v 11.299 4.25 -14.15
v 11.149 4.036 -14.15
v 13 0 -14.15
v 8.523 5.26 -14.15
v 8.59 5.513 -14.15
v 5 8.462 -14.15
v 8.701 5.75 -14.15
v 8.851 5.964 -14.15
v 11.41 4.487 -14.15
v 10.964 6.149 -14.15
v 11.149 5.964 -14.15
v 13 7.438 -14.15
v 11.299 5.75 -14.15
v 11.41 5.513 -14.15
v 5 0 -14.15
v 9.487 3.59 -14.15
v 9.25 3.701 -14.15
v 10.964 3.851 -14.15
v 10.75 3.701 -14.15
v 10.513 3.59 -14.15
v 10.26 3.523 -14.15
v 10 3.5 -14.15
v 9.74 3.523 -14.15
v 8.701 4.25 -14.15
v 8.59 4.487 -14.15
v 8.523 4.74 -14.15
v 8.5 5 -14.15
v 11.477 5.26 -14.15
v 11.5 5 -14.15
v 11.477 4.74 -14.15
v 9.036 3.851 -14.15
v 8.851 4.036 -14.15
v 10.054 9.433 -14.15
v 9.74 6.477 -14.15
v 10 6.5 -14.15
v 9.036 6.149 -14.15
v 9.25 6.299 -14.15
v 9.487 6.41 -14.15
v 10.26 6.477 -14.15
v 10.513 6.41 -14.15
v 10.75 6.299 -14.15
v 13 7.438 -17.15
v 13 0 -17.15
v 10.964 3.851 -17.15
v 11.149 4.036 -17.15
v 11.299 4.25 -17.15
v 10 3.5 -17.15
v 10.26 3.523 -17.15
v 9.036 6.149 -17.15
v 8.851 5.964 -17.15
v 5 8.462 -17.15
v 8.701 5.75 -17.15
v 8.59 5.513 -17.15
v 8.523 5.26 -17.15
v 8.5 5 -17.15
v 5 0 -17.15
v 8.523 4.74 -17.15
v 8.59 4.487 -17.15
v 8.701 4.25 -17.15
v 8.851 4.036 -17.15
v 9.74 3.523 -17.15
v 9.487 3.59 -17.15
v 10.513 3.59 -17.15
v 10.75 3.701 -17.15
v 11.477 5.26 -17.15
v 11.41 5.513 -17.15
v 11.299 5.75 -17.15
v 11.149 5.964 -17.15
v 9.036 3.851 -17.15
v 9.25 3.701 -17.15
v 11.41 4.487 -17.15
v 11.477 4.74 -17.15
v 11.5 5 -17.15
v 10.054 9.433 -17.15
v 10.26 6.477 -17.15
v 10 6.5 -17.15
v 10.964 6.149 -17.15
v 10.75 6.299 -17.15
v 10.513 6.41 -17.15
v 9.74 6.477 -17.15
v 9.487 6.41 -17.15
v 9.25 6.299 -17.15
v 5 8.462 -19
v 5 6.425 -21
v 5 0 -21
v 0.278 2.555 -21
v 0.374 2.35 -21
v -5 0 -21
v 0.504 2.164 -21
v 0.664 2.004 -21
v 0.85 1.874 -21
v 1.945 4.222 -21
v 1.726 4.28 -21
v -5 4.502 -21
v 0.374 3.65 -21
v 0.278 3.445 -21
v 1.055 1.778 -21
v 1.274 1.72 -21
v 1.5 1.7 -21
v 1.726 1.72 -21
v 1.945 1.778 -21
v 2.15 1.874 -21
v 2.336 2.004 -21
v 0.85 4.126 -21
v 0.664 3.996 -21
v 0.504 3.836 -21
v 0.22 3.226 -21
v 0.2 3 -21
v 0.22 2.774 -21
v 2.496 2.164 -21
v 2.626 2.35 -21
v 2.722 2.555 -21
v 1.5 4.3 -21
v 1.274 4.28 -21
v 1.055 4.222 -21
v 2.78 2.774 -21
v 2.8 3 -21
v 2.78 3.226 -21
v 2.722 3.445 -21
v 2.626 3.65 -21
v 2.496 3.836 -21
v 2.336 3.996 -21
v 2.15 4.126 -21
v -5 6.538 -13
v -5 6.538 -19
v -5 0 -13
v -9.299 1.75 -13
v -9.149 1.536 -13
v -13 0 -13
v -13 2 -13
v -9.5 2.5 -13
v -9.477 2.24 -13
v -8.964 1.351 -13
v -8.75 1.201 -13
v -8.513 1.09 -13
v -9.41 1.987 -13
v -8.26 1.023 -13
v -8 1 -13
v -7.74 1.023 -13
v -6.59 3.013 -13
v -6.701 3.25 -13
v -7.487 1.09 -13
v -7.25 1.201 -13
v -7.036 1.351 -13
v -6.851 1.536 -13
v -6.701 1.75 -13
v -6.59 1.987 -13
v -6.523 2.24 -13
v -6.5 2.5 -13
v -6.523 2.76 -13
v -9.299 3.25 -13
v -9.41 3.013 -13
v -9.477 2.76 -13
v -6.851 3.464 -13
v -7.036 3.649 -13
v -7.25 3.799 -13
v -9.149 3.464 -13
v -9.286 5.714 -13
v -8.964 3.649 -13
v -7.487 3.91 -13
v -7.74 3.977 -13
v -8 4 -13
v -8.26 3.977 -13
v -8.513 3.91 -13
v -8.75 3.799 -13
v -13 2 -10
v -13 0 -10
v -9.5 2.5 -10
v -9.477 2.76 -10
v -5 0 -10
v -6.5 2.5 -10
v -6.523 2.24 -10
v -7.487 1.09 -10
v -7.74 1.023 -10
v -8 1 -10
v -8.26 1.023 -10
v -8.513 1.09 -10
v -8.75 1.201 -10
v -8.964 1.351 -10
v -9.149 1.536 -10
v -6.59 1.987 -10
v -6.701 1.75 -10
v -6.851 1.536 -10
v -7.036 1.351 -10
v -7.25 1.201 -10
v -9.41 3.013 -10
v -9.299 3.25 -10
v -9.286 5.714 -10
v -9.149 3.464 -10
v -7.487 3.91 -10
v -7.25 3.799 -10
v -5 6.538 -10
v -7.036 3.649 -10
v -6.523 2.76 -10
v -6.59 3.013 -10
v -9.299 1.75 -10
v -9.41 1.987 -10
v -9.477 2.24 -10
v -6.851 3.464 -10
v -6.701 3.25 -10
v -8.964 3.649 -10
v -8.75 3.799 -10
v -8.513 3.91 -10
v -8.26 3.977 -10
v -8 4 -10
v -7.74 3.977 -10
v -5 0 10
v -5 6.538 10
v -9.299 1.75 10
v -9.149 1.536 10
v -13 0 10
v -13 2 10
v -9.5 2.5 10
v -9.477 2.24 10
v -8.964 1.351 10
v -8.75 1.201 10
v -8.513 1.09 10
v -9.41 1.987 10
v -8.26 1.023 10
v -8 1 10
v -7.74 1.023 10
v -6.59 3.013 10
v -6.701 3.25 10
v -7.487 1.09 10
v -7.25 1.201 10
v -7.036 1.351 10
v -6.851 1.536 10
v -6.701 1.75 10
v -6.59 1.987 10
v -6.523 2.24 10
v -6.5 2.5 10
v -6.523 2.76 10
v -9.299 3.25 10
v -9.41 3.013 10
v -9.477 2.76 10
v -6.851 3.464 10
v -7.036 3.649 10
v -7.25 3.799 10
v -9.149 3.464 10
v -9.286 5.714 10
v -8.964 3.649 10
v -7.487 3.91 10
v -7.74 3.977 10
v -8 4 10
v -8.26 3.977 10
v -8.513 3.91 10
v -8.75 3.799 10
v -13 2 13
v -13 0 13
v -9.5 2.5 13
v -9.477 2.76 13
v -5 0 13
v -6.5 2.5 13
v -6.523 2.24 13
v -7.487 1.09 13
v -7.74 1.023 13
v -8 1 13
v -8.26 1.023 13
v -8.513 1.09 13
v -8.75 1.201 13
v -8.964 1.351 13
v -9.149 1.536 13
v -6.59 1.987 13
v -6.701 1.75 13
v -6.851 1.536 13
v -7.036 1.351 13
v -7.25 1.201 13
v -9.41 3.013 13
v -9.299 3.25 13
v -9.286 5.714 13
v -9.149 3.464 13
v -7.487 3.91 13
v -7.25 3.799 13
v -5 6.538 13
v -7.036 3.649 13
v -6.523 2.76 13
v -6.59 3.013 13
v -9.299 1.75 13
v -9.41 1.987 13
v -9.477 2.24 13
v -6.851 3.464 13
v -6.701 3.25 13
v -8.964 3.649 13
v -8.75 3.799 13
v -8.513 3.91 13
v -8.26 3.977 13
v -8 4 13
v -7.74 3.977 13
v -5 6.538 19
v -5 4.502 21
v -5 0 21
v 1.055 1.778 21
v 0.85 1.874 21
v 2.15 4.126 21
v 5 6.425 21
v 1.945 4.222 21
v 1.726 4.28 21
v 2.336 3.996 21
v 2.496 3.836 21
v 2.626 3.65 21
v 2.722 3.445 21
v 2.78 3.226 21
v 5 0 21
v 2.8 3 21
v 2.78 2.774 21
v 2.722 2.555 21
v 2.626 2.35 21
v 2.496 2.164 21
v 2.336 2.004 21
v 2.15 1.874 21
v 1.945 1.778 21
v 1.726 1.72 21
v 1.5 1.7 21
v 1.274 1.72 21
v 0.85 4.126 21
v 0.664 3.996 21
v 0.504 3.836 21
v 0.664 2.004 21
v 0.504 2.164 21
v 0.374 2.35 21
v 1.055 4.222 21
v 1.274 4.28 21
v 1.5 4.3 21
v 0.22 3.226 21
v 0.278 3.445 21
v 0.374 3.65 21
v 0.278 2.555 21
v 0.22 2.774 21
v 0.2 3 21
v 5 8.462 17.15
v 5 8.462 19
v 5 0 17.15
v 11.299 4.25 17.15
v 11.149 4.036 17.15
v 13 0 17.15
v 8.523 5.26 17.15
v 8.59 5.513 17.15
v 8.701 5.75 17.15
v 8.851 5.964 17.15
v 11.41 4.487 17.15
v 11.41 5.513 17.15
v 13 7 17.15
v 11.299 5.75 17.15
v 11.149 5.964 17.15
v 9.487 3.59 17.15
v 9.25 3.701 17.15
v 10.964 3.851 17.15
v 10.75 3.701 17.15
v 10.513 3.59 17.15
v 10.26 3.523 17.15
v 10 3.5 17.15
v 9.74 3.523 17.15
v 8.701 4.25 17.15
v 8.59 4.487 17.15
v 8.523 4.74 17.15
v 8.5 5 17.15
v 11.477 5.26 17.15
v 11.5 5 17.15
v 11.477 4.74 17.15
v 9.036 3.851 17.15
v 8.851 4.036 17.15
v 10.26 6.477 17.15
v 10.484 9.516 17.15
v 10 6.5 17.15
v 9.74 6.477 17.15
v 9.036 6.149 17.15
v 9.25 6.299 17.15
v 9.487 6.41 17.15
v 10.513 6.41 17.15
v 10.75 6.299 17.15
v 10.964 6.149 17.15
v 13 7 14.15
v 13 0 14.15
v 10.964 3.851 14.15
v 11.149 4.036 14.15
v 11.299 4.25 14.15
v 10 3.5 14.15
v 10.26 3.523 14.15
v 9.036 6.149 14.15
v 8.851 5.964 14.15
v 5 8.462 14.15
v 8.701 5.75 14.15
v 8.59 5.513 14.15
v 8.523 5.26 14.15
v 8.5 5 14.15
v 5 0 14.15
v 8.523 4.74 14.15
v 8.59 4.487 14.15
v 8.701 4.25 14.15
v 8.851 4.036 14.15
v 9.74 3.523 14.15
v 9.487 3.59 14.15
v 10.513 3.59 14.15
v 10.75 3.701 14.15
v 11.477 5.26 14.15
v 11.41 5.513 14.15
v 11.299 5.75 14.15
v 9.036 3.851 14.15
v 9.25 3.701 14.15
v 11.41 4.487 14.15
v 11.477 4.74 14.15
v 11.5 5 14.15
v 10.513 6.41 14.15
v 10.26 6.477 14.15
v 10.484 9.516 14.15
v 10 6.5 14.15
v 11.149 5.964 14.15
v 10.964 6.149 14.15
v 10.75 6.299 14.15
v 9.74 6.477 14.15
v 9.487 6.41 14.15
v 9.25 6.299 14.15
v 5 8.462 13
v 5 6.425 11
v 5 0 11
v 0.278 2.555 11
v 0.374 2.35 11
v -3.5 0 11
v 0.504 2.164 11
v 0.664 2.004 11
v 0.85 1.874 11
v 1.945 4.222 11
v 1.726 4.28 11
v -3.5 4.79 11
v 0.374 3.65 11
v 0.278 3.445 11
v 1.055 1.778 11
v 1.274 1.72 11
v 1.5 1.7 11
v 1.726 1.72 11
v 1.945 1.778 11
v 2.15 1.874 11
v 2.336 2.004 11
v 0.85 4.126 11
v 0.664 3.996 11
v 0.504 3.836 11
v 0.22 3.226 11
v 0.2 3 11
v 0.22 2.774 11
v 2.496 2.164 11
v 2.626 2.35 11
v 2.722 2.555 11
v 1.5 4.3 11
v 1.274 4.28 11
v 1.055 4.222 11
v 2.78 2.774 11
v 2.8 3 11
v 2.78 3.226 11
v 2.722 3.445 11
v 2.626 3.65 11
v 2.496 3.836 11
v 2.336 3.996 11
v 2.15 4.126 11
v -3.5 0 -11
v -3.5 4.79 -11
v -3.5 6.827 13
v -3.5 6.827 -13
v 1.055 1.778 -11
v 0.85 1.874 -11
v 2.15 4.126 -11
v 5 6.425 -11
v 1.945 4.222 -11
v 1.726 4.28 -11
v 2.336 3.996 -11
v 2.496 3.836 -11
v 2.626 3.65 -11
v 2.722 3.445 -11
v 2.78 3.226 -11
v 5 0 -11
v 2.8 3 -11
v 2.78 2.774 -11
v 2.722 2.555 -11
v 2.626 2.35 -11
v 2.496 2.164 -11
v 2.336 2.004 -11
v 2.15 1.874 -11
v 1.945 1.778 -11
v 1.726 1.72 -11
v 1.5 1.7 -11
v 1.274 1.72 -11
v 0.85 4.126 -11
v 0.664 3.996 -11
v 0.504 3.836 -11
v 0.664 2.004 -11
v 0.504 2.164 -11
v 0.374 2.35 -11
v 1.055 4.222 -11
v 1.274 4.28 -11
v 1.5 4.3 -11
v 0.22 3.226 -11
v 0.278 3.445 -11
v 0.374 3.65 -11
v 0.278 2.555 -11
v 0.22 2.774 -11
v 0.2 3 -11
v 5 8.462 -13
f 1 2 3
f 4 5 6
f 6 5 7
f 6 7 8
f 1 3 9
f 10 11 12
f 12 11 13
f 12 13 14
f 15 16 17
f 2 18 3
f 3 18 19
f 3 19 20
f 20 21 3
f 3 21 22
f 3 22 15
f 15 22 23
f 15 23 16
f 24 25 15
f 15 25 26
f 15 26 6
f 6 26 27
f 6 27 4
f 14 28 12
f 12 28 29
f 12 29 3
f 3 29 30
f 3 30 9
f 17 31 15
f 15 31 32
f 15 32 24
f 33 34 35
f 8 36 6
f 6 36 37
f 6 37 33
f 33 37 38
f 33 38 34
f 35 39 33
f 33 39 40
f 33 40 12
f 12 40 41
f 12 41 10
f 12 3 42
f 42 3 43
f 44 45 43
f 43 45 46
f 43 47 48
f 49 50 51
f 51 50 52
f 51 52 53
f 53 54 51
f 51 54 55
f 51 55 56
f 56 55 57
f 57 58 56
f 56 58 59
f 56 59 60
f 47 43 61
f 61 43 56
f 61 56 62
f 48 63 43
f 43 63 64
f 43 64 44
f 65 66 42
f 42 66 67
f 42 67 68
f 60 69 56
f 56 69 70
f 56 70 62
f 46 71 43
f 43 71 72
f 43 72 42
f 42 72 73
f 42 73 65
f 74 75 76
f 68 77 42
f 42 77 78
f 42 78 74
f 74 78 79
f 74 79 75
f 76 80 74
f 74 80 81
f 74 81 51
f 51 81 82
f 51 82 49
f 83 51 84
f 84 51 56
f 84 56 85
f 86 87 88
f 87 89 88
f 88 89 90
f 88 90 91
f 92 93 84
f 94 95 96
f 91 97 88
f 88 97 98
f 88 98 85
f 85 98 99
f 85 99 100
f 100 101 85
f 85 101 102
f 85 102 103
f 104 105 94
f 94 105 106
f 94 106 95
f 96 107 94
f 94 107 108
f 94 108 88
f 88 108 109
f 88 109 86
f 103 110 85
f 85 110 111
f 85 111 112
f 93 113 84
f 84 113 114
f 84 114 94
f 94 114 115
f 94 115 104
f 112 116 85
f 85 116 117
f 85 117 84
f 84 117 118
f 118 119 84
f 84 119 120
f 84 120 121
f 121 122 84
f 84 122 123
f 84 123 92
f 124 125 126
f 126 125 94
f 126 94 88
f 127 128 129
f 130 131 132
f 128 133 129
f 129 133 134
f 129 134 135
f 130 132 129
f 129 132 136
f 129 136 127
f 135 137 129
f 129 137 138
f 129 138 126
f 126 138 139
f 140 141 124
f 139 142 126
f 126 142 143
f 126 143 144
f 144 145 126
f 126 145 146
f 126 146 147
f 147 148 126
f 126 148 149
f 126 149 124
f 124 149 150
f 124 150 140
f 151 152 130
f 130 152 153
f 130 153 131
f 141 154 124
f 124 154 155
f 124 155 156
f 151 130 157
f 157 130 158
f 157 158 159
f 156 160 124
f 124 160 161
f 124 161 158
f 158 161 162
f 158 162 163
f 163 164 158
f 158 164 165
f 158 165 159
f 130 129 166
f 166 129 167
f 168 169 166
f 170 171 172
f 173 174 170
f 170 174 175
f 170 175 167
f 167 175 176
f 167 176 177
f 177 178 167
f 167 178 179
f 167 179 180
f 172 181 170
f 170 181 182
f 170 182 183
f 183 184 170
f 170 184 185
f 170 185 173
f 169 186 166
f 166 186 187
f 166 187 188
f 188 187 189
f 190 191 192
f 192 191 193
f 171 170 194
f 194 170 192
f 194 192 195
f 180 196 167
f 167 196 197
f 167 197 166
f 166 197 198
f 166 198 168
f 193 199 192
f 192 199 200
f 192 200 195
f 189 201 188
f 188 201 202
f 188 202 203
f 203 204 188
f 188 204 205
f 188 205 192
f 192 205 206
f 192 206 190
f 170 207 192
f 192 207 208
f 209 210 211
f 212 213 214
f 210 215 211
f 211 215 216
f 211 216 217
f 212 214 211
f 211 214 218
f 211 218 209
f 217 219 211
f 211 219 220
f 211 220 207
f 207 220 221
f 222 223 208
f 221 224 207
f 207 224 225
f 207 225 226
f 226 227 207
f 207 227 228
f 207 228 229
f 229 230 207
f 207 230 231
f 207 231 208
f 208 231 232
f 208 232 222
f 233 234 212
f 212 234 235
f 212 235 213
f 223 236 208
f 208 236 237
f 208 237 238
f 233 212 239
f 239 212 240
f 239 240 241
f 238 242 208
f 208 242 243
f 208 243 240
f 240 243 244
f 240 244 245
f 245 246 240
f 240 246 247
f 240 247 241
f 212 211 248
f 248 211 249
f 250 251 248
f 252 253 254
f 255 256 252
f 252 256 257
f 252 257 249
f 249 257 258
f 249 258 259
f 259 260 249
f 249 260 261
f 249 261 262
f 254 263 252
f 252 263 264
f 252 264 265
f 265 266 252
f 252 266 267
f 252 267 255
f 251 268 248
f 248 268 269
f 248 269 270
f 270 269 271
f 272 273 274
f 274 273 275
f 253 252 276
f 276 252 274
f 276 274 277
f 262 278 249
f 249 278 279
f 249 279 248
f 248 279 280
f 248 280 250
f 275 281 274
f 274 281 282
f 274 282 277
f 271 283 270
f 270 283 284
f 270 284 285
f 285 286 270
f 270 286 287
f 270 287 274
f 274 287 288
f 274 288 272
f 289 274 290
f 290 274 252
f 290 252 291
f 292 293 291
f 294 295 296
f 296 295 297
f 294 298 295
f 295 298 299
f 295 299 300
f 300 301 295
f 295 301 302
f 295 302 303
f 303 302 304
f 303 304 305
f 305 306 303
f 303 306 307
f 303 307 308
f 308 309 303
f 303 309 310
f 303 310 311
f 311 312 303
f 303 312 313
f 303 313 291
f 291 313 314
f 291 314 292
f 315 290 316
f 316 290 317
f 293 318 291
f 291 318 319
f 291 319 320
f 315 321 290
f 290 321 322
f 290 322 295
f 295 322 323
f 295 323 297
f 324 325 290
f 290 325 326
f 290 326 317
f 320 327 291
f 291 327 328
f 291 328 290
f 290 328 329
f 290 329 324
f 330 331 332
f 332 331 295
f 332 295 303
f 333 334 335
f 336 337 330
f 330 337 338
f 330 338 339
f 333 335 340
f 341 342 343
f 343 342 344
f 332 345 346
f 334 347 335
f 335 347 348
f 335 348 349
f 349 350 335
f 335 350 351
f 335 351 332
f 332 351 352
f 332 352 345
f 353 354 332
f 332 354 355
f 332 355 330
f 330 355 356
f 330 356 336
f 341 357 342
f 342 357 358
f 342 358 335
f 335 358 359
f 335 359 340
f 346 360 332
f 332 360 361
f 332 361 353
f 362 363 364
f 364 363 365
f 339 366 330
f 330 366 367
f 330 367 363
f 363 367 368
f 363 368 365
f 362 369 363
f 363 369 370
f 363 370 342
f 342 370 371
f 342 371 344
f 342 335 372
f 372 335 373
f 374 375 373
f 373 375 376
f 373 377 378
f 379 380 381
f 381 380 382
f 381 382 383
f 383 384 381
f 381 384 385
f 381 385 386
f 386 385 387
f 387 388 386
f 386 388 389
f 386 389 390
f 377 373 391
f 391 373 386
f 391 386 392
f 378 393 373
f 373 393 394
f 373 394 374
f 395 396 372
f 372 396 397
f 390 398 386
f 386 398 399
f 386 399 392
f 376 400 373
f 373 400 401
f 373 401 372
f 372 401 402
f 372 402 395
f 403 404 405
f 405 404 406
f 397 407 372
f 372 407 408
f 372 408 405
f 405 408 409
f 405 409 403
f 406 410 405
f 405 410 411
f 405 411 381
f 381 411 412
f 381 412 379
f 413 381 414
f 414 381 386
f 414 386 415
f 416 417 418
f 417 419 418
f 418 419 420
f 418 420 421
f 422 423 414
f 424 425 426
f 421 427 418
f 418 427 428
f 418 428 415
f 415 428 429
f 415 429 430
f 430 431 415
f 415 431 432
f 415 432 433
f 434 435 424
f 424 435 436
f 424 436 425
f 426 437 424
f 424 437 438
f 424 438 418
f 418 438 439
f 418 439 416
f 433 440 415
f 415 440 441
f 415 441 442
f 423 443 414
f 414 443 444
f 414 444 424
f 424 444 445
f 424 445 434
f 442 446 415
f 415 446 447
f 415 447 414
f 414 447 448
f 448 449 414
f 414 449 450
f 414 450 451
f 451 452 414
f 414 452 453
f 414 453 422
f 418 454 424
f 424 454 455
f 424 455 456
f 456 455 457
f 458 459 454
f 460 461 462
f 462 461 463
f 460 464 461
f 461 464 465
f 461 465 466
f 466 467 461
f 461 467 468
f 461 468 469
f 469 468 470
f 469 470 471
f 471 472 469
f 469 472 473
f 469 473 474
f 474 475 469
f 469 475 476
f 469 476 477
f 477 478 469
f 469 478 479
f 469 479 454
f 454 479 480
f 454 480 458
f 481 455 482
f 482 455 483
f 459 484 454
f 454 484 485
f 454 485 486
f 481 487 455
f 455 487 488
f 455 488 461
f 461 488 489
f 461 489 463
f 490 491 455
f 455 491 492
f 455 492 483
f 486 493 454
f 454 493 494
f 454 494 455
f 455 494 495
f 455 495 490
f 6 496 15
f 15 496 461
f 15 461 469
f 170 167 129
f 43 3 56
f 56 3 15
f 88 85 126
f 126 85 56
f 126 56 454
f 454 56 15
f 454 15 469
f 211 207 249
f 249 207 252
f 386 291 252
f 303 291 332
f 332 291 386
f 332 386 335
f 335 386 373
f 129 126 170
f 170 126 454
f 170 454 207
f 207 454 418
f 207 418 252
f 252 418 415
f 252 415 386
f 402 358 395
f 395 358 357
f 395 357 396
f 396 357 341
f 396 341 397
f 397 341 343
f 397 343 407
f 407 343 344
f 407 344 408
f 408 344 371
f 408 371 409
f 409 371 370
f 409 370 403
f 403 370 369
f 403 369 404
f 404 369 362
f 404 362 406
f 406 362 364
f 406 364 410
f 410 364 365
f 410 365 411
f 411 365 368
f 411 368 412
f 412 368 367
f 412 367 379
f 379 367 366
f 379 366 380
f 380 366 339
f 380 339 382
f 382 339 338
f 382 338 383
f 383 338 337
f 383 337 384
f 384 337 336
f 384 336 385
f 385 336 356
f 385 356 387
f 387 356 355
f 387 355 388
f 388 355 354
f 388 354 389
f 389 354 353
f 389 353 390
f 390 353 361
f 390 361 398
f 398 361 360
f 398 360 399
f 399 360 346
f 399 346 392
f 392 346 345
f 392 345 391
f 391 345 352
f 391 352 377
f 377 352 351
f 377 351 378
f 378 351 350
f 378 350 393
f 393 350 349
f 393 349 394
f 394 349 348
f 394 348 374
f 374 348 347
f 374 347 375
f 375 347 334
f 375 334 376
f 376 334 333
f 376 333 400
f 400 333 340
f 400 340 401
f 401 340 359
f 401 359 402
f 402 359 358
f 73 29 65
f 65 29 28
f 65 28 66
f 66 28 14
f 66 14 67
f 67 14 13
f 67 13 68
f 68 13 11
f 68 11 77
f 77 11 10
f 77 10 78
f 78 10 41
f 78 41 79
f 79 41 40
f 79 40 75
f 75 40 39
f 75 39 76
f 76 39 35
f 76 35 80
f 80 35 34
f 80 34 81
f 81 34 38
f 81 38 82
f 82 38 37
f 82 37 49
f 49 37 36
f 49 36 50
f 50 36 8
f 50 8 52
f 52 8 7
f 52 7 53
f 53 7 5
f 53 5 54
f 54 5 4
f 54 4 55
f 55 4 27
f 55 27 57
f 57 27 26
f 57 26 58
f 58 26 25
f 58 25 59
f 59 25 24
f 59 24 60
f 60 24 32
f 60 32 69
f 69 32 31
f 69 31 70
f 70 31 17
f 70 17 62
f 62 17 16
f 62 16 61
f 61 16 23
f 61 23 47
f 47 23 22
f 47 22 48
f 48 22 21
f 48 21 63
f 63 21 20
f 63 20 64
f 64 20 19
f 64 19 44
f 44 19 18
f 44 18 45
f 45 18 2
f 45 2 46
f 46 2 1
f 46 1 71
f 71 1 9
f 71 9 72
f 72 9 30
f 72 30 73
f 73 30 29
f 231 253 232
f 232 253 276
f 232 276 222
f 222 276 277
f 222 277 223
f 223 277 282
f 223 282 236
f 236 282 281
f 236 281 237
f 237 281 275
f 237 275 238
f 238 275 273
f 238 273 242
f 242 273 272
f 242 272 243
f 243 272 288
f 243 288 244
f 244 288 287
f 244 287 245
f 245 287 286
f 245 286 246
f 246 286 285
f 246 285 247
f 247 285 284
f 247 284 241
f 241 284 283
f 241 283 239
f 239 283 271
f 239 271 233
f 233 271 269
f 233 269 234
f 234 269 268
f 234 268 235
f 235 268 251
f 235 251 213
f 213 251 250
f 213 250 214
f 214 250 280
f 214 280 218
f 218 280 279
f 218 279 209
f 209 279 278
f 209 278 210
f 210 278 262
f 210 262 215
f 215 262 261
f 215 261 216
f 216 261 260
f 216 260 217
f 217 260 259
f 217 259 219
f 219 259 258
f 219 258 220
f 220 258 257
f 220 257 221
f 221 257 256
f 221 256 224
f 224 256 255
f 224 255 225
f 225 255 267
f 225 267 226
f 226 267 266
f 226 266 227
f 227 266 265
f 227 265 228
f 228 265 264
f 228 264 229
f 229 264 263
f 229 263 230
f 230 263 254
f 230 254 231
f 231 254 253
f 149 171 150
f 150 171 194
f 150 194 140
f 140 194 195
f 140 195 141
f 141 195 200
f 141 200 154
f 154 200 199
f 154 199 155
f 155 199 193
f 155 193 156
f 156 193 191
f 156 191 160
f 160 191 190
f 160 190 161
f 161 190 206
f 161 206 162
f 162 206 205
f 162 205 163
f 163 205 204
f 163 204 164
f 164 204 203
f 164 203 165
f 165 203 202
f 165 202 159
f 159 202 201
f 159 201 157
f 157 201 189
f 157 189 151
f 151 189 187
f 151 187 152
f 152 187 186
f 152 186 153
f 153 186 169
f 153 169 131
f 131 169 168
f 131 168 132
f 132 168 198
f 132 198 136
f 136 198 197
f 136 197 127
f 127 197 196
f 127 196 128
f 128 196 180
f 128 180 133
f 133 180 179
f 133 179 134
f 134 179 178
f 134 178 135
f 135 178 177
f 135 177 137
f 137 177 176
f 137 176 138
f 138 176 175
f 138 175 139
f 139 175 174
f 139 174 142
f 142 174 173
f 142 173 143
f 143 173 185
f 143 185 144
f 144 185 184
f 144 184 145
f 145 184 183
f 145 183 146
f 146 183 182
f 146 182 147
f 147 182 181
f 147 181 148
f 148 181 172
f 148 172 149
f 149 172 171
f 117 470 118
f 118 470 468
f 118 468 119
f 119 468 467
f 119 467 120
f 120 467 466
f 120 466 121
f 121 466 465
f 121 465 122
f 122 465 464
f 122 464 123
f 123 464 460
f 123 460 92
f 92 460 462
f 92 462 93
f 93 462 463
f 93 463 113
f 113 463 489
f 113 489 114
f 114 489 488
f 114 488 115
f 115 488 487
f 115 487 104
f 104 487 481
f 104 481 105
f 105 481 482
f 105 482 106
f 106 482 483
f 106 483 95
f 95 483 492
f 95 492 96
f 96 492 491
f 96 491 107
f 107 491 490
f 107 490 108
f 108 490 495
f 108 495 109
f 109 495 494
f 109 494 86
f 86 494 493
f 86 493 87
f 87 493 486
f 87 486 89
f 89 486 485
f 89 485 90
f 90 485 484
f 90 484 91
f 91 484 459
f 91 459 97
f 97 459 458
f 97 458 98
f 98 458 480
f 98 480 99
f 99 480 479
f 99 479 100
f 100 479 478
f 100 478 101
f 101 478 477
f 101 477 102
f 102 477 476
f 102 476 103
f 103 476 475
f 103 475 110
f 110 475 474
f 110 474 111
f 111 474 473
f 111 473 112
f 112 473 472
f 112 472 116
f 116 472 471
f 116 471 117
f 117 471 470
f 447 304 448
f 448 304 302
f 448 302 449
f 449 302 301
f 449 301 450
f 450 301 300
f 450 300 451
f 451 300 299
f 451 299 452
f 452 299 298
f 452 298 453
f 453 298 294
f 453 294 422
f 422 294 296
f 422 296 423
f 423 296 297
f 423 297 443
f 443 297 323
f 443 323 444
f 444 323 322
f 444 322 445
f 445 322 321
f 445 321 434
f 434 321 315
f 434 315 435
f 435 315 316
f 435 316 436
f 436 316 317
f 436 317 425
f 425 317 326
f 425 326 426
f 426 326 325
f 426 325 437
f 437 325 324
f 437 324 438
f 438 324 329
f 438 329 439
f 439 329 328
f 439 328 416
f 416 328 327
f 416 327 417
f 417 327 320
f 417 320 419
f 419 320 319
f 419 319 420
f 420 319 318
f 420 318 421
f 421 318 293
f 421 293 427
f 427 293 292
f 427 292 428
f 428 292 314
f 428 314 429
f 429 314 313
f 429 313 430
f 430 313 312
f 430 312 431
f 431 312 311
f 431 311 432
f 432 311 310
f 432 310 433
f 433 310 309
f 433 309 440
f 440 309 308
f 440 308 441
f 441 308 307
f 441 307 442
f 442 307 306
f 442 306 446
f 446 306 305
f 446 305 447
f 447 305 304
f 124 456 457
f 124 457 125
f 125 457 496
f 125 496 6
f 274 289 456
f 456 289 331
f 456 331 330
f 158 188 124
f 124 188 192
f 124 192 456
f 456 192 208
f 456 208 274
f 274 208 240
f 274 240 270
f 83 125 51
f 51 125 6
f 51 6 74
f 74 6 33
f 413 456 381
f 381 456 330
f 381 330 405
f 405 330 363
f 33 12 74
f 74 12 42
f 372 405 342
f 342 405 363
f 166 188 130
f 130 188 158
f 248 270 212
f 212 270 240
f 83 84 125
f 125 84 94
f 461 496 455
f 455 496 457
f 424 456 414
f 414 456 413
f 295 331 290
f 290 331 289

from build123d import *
from OCP.BRepFilletAPI import BRepFilletAPI_MakeChamfer

# Parameters (mm, degrees)
EXTRUDE_1_DEPTH     = 10
SKETCH_2_R          = 1.5
SKETCH_2_R_2        = 1.3
CUT_EXTRUDE_1_DEPTH = 46.08880127
CHAMFER_1_SIZE      = 3
CHAMFER_1_SIZE2     = 3.782343513
CHAMFER_1_SIZE2_2   = 2.562232702
CHAMFER_2_SIZE      = 2


with BuildPart() as part:
    # 草图1 → 凸台-拉伸1 (new body)
    with BuildSketch(Plane(origin=(0, 0, 0), x_dir=(1, 0, 0), z_dir=(0, 1, 0))):
        Polygon((13, -14.15), (5, -14.15), (5, -11), (-3.5, -11), (-3.5, 11), (5, 11), (5, 14.15), (13, 14.15), (13, 17.15), (5, 17.15), (5, 21), (-5, 21), (-5, 13), (-13, 13), (-13, 10), (-5, 10), (-5, -10), (-13, -10), (-13, -13), (-5, -13), (-5, -21), (5, -21), (5, -17.15), (13, -17.15), align=None)
    extrude(amount=EXTRUDE_1_DEPTH)

    # 草图2 → 切除-拉伸1 (cut, through all)
    with BuildSketch(Plane.XY.offset(21)):
        with Locations((10, 5)):
            Circle(SKETCH_2_R)
        with Locations((-8, 2.5)):
            Circle(SKETCH_2_R)
        with Locations((1.5, 3)):
            Circle(SKETCH_2_R_2)
        Polygon((-13, 5), (13, 10), (-13, 10), align=None)
    extrude(amount=-CUT_EXTRUDE_1_DEPTH, mode=Mode.SUBTRACT)

    # 倒角1: one chamfer whose edges measure the first distance from different faces: ONE call of the kernel's chamfer builder (chamfer() names one face for all edges)
    chamfer_1_edges_1 = [part.edges().sort_by_distance(p)[0] for p in [
        (-13, 5, -11.5),
    ]]
    chamfer_1_side_1 = [part.faces().sort_by_distance(p)[0] for p in [
        (-13, 2.5, -11.5),
    ]]
    chamfer_1_edges_2 = [part.edges().sort_by_distance(p)[0] for p in [
        (-13, 5, 11.5),
    ]]
    chamfer_1_side_2 = [part.faces().sort_by_distance(p)[0] for p in [
        (-13, 2.5, 11.5),
    ]]
    chamfer_1_edges_3 = [part.edges().sort_by_distance(p)[0] for p in [
        (13, 10, 15.65),
    ]]
    chamfer_1_side_3 = [part.faces().sort_by_distance(p)[0] for p in [
        (13, 5, 15.65),
    ]]
    chamfer_1_edges_4 = [part.edges().sort_by_distance(p)[0] for p in [
        (13, 10, -15.65),
    ]]
    chamfer_1_side_4 = [part.faces().sort_by_distance(p)[0] for p in [
        (-9, 5.769230769, 12.503512337),
    ]]
    chamfer_1 = BRepFilletAPI_MakeChamfer(part.part.solid().wrapped)
    for e in chamfer_1_edges_1:
        chamfer_1.Add(CHAMFER_1_SIZE, CHAMFER_1_SIZE2, e.wrapped, chamfer_1_side_1[0].wrapped)  # the first distance lies on this face
    for e in chamfer_1_edges_2:
        chamfer_1.Add(CHAMFER_1_SIZE, CHAMFER_1_SIZE2, e.wrapped, chamfer_1_side_2[0].wrapped)  # the first distance lies on this face
    for e in chamfer_1_edges_3:
        chamfer_1.Add(CHAMFER_1_SIZE, CHAMFER_1_SIZE2_2, e.wrapped, chamfer_1_side_3[0].wrapped)  # the first distance lies on this face
    for e in chamfer_1_edges_4:
        chamfer_1.Add(CHAMFER_1_SIZE, CHAMFER_1_SIZE2_2, e.wrapped, chamfer_1_side_4[0].wrapped)  # the first distance lies on this face
    add(Compound.cast(chamfer_1.Shape()), mode=Mode.REPLACE)

    # 倒角2
    chamfer_2_edges = [part.edges().sort_by_distance(p)[0] for p in [
        (0, 7.5, -21),
        (0.75, 7.644230769, 11),
        (0.75, 7.644230769, -11),
        (0, 7.5, 21),
    ]]
    chamfer(chamfer_2_edges, length=CHAMFER_2_SIZE)


solid = part.part
